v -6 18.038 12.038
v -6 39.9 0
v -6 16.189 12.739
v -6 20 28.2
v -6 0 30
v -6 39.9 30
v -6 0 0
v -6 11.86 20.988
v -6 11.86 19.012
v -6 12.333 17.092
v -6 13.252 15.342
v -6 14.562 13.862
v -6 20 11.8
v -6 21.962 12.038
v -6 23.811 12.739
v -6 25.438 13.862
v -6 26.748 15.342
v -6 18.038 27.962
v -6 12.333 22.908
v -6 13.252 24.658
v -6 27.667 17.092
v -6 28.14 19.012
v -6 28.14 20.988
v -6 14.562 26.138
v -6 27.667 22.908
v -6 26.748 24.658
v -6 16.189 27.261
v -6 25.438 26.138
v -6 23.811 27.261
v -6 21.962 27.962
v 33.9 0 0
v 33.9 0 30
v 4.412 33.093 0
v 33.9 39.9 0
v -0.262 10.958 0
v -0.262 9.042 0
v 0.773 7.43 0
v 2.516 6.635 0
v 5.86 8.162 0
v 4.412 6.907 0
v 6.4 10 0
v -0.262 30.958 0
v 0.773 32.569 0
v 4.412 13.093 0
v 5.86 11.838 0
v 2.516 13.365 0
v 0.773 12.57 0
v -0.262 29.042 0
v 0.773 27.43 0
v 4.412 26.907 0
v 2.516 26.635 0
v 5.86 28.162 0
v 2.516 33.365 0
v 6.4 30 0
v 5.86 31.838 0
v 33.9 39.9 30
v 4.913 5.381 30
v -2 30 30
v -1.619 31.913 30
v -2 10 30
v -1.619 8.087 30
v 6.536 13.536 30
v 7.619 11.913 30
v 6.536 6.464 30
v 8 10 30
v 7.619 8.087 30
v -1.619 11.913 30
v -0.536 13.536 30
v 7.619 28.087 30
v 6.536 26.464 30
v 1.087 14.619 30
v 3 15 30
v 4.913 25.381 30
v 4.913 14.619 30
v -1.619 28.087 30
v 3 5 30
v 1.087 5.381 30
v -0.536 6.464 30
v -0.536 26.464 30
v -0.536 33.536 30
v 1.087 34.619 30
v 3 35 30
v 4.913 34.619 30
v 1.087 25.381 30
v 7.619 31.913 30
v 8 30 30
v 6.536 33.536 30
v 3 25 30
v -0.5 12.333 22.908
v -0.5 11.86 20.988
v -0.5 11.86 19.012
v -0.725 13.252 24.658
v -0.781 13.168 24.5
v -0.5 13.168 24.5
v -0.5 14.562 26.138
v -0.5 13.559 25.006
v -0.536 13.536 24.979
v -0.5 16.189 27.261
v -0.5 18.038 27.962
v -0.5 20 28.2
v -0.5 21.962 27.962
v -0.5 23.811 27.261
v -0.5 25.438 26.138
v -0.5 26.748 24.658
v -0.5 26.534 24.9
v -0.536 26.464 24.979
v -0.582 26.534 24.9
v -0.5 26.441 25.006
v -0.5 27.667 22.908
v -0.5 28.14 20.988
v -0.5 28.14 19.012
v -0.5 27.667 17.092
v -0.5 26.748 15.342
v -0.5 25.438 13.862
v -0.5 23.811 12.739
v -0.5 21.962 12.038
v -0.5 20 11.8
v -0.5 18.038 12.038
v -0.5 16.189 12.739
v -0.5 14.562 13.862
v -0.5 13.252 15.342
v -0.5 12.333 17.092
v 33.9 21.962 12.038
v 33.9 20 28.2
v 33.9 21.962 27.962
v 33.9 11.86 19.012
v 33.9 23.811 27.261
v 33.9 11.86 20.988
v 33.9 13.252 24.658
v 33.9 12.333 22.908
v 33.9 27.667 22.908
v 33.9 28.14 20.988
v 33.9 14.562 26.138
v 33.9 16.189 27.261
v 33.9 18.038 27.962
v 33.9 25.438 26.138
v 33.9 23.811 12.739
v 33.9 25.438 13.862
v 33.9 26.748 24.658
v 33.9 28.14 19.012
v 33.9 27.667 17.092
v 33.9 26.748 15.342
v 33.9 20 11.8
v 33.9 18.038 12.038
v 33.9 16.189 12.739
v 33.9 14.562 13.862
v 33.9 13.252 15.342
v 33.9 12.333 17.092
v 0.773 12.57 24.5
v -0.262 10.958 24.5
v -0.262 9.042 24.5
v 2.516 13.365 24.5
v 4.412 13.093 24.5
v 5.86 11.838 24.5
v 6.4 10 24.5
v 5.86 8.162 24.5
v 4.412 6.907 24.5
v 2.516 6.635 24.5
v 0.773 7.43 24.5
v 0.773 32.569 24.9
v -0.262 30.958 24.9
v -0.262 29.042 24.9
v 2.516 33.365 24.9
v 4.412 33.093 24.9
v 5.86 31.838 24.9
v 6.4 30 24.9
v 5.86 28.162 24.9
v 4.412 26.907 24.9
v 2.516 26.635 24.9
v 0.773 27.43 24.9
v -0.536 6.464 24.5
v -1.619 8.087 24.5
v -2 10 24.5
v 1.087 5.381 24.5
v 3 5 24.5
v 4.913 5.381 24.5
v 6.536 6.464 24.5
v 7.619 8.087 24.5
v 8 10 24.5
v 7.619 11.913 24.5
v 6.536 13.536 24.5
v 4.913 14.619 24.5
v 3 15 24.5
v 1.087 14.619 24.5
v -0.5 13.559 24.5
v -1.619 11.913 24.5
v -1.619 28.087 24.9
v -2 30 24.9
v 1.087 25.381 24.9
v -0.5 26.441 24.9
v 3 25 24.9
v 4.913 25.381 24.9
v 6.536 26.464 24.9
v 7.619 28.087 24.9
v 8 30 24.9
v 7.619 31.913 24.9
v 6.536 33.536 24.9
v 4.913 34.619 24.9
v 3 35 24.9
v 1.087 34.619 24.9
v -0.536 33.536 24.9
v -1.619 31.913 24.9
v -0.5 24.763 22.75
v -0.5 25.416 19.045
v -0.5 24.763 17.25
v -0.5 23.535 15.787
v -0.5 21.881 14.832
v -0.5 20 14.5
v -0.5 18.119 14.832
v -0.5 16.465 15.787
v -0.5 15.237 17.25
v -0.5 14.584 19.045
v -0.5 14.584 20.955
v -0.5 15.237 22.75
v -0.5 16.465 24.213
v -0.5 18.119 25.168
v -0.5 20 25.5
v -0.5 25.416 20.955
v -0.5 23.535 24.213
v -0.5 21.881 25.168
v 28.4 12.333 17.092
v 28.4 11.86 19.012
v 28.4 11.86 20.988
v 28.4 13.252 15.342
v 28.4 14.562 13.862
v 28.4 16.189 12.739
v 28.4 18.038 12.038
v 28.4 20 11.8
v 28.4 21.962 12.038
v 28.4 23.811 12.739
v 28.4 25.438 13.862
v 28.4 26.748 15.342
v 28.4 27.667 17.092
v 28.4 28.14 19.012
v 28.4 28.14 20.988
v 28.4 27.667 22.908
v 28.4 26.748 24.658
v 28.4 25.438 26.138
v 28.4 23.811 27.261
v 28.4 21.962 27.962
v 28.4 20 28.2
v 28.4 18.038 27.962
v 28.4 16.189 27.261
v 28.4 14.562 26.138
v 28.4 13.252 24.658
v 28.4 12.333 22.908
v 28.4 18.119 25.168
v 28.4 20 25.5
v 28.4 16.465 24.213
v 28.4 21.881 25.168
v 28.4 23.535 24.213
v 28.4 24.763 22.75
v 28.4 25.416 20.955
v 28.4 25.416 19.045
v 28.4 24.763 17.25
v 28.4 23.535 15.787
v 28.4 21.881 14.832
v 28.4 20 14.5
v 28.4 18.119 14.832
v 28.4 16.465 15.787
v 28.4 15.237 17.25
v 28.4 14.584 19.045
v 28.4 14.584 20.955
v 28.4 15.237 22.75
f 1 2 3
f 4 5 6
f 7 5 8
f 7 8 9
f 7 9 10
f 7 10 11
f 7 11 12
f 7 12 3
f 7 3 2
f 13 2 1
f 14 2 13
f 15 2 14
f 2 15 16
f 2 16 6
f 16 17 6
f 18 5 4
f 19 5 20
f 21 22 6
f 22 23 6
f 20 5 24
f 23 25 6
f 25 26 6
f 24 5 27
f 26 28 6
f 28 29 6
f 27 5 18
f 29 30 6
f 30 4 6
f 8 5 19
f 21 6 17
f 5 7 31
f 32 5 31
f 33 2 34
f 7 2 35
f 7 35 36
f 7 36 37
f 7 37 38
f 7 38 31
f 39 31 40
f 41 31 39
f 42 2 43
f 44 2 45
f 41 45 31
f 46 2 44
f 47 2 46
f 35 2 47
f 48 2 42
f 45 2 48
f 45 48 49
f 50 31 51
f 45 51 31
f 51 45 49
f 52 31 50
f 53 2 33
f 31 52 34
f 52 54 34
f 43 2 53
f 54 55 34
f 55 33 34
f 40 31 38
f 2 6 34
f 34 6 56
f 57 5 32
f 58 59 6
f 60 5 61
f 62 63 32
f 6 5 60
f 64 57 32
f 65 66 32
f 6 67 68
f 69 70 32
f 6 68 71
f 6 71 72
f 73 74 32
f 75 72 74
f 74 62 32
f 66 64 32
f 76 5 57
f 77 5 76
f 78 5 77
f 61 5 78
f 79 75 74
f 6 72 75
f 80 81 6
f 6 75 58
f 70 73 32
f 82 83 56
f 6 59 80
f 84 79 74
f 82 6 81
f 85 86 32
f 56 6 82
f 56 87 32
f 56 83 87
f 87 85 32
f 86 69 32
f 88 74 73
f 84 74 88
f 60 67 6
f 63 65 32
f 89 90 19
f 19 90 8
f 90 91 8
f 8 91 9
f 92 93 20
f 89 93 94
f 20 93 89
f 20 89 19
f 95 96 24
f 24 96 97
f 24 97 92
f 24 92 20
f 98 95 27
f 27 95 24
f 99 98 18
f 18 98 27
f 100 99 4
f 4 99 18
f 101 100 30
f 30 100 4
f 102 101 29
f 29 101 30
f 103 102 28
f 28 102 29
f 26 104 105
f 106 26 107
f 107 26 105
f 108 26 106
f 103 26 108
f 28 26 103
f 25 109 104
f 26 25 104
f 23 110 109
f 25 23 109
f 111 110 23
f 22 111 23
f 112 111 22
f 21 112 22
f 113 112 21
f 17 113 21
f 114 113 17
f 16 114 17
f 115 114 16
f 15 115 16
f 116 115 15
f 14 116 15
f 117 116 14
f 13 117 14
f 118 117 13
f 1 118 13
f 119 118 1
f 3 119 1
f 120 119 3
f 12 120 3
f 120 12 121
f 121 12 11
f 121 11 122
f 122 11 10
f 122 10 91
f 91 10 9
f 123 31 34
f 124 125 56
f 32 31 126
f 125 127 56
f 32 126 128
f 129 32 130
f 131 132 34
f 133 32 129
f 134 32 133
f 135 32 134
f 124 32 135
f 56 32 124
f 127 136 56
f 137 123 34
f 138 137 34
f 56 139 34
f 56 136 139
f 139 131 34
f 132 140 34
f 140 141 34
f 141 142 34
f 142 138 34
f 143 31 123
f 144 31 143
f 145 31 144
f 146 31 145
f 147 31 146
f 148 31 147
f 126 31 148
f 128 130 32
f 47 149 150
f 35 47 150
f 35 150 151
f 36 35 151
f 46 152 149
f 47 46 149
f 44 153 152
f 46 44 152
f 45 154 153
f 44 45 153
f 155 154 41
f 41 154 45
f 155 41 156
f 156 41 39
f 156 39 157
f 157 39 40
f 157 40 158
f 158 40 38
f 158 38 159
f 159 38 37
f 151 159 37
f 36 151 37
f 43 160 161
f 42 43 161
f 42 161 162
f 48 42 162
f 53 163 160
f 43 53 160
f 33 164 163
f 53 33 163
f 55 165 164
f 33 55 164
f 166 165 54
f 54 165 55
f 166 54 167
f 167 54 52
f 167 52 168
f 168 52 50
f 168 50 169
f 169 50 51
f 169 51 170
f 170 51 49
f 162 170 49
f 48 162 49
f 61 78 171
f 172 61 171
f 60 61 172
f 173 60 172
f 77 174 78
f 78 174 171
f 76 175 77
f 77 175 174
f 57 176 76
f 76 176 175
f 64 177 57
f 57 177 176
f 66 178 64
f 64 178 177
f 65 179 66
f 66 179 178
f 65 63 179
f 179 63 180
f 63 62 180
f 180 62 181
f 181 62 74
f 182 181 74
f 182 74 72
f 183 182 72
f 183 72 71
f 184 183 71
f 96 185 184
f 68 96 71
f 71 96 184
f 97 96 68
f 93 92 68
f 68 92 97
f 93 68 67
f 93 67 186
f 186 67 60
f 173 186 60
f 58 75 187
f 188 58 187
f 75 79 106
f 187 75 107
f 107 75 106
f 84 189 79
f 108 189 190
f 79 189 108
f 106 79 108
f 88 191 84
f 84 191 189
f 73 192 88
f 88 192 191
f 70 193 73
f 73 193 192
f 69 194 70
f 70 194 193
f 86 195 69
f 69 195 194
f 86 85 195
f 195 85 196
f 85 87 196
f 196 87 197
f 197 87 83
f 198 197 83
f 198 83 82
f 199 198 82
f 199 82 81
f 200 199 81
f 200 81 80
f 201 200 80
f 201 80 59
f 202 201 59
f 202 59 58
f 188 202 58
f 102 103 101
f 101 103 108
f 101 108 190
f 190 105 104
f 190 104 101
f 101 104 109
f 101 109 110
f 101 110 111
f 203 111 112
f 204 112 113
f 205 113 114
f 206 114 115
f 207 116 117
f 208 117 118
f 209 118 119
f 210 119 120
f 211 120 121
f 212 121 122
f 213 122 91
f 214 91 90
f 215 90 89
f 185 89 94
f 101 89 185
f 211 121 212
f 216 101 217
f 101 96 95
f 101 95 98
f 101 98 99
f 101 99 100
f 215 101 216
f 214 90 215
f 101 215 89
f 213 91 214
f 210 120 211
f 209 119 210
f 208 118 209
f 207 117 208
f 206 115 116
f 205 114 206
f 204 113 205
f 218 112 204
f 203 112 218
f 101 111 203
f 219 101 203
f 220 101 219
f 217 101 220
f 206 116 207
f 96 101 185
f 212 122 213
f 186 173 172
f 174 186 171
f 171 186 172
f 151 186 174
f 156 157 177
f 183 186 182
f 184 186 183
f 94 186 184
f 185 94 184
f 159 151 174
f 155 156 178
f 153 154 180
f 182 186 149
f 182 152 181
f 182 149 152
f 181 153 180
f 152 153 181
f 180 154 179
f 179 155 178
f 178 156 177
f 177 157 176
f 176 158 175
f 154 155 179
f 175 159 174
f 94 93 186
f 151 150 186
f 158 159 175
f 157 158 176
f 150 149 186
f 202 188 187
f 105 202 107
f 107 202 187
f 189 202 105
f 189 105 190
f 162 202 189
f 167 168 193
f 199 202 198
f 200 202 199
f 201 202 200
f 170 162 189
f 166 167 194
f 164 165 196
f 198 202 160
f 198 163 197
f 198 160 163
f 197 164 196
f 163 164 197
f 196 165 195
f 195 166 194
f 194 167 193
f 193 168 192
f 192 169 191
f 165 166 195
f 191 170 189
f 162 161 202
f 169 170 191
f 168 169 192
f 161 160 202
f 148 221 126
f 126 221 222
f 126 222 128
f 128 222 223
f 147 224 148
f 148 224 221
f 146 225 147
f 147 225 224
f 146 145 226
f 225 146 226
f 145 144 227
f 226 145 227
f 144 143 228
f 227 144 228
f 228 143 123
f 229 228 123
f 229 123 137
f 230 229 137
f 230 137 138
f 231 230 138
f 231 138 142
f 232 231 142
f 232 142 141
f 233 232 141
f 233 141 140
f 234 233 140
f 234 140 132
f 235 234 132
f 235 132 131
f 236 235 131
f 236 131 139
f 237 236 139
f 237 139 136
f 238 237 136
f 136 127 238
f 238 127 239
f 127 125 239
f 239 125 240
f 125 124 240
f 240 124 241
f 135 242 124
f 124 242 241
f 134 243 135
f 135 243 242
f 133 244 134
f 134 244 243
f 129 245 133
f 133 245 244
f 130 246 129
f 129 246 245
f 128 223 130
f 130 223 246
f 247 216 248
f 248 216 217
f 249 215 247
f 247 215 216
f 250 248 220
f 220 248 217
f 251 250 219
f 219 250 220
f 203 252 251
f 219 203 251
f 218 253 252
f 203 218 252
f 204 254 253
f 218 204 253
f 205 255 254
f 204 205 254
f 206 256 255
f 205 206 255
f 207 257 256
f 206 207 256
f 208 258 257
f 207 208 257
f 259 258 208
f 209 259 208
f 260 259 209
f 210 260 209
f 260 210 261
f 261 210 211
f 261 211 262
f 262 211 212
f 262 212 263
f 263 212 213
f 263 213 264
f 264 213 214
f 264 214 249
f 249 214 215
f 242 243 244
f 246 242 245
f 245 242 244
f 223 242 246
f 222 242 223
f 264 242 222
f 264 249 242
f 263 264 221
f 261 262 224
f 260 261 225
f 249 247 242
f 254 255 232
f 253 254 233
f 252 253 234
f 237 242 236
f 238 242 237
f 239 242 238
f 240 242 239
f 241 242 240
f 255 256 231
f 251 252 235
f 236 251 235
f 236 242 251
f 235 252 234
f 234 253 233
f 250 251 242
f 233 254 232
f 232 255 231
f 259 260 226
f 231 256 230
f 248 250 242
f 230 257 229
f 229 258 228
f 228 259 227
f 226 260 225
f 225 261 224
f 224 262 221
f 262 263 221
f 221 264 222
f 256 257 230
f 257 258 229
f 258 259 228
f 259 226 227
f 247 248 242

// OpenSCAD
width=39.9;


wallThickness = 6;

nema17Width=42.30;
slotWidth=4.5;
slotHeight=0.6;

difference(){
	translate([-wallThickness,0,0])cube([width,width,30]);
	translate([-20,20,20])rotate([0,90,0])cylinder(h=100,r=5.5);//nema17Big();
	translate([-6.5,20,20])rotate([0,90,0])cylinder(h=6,r=8.2);//nema17Big();
	translate([width-11.5,20,20])rotate([0,90,0])cylinder(h=6,r=8.2);//nema17Big();
//	translate([-100,0,-40])profile5_40x40(200);
//	rotate([0,0,90])translate([-100,-40,-40])profile5_40x40(200);
	translate([3,10,-0.5])m5Screw(25,40);
	translate([3,30,-0.1])m5Screw(25,40);
//	translate([30,10,-slotHeight-0.1])m3Screw(2.8,40);
//	translate([30,30,-slotHeight-0.1])m3Screw(2.8,40);
//	translate([55,50,56])rotate([90,0,0])cylinder(h=60,r=50);
}

//module nema17Big(){
//	union(){
//		cube([60,nema17Width,nema17Width]);
//		translate([0,nema17Width/2,nema17Width/2])rotate([0,-90,0])cylinder(h=22,r=6/2);
//		translate([0.1,nema17Width/2,nema17Width/2])rotate([0,-90,0])cylinder(h=0.2+wallThickness,r=22.5/2);
//		translate([0.1,5.5,5.5])rotate([0,-90,0])m3Screw(5.5,40);
//		translate([0.1,nema17Width-5.5,5.5])rotate([0,-90,0])m3Screw(5.5,40);
//		translate([0.1,5.5,nema17Width-5.5])rotate([0,-90,0])m3Screw(5.5,40);
//		translate([0.1,nema17Width-5.5,nema17Width-5.5])rotate([0,-90,0])m3Screw(5.5,40);
//	}
//}

//module m3Screw(h=10,headH=3) {
//	union() {
//		cylinder(h=h,r=1.7);
//		translate([0,0,h])cylinder(h=headH,r=5.65/2);
//	}
//}

module m5Screw(h=10,headH=3) {
	union() {
		cylinder(h=h,r=3.4);
		translate([0,0,h])cylinder(h=headH,r=5);
	}
}

//module profile5_20x20(l=100) {
//	difference(){
//		cube([l,20,20]);
//		translate([0,(20/2)-slotWidth/2,0])cube([l,slotWidth,slotHeight]);
//		translate([0,(20/2)-slotWidth/2,20-slotHeight])cube([l,slotWidth,slotHeight]);
//		translate([0,0,(20/2)-(slotWidth/2)])cube([l,slotHeight,slotWidth]);
//		translate([0,20-slotHeight,(20/2)-(slotWidth/2)])cube([l,slotHeight,slotWidth]);
//		
//	}
//	
//}
//
//module profile5_40x40(l=100) {
//	union(){
//		profile5_20x20(l);
////		translate([0,20,0])profile5_20x20(l);
//		#translate([0,20,20])profile5_20x20(l);
////		translate([0,0,20])profile5_20x20(l);
//	}
	
//}
